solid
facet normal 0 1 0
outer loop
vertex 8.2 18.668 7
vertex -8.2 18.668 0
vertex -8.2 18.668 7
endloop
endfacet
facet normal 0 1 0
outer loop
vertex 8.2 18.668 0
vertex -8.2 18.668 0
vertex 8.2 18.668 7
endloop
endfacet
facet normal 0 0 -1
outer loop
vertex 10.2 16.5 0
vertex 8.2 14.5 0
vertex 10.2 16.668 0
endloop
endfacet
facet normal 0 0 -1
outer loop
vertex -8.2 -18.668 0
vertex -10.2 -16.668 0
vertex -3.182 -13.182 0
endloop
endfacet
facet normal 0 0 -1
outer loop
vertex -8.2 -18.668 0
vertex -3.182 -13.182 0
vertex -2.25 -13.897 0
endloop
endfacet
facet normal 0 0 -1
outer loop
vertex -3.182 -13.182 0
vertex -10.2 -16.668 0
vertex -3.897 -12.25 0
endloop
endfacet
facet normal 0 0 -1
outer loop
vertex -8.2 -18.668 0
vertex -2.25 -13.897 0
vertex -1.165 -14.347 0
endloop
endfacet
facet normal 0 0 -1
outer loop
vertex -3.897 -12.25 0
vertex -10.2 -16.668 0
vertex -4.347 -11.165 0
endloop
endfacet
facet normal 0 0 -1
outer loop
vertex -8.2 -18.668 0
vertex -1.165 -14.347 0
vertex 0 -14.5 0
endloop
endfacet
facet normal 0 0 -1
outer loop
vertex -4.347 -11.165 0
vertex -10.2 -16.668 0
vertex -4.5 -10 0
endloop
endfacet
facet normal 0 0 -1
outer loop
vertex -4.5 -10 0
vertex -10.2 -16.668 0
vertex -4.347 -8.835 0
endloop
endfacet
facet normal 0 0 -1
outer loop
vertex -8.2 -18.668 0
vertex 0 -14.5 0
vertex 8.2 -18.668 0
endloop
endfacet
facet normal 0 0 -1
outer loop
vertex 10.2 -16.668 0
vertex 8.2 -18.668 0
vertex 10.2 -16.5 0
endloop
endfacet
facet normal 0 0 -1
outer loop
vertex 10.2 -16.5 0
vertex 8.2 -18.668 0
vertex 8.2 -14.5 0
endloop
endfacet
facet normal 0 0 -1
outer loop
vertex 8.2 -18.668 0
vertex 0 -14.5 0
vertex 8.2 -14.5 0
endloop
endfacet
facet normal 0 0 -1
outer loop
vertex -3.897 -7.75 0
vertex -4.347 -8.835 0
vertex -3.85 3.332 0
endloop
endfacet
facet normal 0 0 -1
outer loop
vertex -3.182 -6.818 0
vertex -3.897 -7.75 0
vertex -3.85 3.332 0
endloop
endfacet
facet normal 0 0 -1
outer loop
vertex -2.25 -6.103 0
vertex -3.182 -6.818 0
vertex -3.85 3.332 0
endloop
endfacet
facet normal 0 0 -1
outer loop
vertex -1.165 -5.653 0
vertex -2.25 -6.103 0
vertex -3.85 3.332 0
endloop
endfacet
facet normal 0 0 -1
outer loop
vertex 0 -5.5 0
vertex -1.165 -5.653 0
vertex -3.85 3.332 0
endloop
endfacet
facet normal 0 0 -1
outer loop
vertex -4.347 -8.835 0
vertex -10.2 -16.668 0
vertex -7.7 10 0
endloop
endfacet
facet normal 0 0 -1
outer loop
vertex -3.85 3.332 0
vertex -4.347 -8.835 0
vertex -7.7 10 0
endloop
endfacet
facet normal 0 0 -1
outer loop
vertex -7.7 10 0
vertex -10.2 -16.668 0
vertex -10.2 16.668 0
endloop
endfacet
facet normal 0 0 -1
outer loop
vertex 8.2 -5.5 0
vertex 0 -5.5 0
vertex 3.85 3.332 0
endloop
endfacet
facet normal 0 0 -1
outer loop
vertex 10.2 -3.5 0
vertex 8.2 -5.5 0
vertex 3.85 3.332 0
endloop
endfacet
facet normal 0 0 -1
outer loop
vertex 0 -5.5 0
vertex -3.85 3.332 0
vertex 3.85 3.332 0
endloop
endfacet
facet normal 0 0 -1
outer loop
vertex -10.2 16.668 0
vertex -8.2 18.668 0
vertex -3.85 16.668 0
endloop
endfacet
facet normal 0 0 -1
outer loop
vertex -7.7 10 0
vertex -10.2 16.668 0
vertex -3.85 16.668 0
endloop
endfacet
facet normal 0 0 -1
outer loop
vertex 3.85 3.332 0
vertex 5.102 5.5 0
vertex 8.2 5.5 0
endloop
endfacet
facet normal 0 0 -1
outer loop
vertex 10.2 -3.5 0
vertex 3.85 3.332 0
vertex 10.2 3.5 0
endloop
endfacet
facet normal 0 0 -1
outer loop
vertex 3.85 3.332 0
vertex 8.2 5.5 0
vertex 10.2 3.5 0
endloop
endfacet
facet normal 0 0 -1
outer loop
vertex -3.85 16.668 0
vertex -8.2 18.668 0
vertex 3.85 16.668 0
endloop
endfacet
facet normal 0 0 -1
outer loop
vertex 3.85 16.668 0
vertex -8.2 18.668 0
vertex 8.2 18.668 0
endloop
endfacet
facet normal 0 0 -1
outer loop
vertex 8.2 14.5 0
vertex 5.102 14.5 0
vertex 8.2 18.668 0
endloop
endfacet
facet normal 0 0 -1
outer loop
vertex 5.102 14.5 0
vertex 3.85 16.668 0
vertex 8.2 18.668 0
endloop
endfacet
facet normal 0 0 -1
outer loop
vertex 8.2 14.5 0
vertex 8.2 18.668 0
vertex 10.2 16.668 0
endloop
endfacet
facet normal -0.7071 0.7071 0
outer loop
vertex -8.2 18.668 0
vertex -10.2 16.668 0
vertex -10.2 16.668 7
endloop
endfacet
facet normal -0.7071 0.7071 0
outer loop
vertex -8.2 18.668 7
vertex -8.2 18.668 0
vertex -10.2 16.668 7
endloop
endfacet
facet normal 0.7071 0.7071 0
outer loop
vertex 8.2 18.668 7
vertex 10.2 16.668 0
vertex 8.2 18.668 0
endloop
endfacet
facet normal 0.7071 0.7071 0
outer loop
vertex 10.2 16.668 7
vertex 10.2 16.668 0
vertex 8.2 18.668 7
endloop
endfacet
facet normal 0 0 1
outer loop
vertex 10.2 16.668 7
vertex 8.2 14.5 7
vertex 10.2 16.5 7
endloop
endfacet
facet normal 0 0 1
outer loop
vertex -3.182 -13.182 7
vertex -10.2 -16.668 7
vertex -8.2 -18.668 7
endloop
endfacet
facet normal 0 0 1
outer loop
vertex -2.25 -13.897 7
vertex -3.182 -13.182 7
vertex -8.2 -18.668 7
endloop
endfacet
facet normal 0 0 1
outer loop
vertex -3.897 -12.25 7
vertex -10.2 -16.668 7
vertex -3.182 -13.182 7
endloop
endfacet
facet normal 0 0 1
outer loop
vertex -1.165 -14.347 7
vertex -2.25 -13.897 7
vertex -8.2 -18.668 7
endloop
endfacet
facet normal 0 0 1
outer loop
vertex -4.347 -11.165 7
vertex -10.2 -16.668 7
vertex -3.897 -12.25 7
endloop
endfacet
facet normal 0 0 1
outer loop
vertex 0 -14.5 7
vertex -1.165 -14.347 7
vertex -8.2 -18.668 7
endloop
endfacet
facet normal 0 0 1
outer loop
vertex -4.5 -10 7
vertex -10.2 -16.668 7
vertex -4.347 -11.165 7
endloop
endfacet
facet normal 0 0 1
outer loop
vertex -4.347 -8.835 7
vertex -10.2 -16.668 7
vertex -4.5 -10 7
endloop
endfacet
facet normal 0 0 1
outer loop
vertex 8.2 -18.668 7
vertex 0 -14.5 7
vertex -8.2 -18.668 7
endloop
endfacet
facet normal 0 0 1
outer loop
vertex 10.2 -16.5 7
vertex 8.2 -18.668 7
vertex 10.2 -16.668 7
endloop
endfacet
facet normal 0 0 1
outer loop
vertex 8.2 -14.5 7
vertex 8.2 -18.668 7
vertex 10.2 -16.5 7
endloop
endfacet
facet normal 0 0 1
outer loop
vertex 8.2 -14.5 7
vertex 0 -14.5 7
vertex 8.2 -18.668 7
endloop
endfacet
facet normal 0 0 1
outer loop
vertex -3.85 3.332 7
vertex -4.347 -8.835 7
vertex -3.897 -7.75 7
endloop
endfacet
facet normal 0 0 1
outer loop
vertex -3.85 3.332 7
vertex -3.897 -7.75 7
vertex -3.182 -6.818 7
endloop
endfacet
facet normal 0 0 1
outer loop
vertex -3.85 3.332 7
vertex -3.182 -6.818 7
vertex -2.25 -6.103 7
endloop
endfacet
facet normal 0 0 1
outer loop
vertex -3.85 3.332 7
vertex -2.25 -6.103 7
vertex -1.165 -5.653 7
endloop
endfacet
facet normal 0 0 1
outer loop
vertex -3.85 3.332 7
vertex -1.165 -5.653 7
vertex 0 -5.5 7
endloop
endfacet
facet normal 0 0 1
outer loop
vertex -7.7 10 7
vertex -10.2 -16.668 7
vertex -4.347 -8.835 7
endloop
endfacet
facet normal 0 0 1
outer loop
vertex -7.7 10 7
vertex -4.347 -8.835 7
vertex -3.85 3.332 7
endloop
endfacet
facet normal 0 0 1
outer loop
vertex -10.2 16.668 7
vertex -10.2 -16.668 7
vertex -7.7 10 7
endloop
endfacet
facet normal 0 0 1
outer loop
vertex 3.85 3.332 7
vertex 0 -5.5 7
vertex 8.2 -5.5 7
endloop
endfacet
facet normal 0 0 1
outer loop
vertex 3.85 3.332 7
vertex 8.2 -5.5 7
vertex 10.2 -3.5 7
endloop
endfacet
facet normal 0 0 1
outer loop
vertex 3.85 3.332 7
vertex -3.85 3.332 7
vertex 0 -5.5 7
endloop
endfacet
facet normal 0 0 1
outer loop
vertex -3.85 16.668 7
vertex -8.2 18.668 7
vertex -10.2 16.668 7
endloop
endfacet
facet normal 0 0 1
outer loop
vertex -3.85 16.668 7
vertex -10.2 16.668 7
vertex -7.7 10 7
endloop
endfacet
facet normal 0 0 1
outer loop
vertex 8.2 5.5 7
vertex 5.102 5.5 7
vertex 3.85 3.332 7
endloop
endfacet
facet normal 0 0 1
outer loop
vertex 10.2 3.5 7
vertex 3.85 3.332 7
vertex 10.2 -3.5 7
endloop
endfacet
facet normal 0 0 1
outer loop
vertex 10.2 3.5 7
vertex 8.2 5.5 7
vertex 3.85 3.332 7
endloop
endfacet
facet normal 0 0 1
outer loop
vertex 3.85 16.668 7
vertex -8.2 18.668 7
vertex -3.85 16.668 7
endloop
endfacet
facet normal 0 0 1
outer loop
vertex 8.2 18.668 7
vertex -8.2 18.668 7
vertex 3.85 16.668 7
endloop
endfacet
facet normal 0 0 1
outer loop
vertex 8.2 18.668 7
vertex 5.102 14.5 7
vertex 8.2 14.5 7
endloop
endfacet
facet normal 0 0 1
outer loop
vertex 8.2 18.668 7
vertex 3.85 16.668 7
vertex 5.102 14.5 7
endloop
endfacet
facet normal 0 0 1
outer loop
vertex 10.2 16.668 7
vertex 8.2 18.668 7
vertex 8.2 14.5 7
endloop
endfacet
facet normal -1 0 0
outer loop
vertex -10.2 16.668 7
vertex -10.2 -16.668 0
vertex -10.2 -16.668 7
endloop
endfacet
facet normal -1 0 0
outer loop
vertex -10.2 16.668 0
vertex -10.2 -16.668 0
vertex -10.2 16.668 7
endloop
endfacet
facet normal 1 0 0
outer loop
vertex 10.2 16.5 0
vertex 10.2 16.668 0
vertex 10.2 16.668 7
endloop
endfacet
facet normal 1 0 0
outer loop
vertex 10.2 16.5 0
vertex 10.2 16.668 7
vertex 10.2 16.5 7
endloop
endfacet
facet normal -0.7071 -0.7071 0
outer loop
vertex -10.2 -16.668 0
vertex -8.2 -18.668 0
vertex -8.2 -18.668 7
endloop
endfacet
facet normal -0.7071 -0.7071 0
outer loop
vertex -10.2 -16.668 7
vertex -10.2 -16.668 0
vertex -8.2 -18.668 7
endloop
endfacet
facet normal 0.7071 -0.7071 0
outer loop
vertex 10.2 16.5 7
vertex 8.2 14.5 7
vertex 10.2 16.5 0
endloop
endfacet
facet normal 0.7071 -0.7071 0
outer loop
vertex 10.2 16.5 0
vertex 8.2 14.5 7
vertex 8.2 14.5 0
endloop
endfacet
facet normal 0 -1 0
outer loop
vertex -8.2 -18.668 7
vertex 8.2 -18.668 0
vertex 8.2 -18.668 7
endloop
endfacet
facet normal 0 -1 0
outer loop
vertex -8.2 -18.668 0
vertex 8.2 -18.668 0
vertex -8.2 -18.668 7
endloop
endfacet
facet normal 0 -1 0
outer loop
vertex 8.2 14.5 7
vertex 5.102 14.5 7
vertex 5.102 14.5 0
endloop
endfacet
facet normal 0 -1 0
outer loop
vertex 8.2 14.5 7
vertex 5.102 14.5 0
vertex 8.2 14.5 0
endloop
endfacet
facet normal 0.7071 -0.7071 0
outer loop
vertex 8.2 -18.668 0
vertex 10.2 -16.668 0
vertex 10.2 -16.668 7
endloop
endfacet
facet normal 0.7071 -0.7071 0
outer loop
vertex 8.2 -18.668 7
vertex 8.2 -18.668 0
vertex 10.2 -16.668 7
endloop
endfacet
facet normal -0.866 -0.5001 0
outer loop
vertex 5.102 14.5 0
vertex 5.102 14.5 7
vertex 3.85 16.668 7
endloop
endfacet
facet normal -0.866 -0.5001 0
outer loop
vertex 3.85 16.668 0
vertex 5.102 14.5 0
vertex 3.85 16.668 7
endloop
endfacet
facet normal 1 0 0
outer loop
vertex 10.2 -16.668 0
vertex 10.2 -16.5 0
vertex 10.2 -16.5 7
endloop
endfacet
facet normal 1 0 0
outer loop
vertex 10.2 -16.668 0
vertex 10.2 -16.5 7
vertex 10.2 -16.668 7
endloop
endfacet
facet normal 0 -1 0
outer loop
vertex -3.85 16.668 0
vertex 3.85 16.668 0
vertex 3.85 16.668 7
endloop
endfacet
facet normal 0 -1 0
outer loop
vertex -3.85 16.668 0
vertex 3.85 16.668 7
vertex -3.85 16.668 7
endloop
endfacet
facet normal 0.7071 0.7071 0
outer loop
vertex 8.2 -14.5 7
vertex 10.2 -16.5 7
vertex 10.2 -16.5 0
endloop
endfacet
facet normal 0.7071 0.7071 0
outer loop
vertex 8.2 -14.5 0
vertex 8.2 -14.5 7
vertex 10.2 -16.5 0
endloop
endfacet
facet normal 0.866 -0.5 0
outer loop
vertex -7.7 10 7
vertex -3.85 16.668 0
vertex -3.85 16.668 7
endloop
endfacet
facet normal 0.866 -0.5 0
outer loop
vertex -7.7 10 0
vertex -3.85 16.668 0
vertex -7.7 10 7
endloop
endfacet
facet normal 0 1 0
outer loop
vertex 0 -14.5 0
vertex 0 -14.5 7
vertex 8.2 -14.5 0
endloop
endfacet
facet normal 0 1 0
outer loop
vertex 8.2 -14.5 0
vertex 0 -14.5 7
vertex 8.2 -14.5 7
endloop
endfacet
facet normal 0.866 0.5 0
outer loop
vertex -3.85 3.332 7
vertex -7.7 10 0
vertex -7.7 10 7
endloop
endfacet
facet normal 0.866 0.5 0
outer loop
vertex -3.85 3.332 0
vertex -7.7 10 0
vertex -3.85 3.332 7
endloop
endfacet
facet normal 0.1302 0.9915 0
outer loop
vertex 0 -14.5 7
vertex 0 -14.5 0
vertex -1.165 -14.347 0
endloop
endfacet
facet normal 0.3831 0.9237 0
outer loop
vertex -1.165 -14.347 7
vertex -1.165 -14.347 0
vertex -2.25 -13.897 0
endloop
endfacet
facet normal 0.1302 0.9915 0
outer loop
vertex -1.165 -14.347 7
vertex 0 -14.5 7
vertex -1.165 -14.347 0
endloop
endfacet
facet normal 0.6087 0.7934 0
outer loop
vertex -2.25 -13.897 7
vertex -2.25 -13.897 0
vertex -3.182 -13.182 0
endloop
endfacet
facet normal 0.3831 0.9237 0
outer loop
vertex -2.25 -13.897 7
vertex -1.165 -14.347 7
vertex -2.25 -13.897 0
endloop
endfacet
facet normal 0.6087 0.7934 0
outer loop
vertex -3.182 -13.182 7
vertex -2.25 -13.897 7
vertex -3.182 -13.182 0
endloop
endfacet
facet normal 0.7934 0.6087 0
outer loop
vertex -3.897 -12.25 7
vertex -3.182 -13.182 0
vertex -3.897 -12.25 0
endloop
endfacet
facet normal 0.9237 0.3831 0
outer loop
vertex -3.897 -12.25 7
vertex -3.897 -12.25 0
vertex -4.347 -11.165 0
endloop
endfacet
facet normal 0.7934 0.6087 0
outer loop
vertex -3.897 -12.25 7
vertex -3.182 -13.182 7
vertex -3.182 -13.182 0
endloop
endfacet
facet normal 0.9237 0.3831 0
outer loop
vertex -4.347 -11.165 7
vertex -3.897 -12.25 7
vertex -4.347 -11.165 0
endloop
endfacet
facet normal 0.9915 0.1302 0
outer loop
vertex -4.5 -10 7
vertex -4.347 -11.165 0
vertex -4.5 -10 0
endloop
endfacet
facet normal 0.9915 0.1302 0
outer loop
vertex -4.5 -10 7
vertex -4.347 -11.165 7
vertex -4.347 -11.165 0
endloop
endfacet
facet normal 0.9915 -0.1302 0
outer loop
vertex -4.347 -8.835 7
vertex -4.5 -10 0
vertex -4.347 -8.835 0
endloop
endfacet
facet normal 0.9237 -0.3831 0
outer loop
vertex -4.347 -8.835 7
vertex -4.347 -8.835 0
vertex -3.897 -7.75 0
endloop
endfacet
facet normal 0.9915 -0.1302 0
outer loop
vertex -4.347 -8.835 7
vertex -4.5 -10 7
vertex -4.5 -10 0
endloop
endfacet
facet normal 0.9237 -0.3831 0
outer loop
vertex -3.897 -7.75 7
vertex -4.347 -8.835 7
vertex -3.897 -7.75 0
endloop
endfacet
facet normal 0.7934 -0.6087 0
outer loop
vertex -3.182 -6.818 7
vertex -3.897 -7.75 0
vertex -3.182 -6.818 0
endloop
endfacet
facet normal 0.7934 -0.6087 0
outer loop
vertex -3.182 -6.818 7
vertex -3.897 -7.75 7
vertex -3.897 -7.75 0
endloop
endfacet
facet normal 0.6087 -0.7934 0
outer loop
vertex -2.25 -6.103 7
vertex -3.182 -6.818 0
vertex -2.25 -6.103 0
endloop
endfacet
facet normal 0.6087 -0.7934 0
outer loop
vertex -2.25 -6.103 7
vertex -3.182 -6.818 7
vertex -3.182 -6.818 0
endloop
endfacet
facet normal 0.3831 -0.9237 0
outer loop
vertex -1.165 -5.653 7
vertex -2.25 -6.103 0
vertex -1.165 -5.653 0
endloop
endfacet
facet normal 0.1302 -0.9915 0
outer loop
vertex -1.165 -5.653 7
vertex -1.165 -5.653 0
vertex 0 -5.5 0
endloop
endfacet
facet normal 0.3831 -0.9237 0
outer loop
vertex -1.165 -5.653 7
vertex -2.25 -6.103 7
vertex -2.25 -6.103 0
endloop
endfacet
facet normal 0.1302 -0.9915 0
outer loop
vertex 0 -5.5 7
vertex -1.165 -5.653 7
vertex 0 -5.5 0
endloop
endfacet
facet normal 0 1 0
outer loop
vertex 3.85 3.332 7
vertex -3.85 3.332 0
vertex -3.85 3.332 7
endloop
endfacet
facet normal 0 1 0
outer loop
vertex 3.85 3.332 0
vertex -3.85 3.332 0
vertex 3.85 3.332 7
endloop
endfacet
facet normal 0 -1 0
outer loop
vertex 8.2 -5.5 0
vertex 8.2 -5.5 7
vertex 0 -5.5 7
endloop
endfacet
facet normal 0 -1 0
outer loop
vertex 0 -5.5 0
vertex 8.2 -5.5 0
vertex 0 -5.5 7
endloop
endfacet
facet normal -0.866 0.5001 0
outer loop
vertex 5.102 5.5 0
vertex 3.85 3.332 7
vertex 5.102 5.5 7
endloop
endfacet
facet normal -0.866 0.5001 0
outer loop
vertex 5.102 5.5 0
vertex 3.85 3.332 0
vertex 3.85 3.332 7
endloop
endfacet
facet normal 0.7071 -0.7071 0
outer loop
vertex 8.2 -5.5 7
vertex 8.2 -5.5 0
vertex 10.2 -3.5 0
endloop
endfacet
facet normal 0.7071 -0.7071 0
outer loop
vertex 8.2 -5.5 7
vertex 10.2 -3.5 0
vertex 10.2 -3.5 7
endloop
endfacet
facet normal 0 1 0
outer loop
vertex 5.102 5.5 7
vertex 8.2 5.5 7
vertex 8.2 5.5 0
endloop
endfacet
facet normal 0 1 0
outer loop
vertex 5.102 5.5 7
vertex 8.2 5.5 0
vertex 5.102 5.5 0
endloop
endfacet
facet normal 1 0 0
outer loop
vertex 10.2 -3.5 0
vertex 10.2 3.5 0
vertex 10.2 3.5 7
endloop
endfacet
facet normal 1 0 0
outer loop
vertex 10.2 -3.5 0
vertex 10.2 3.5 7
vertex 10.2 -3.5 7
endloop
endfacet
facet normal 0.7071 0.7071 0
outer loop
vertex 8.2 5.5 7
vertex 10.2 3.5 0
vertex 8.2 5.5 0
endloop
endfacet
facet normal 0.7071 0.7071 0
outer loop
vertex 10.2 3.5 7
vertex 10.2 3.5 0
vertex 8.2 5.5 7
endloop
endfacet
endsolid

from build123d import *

# Parameters (mm, degrees)
SKETCH_W     = 20.4
SKETCH_H     = 37.336792
PAD_DEPTH    = 7
POCKET_DEPTH = 7
CHAMFER_SIZE = 2


with BuildPart() as part:
    # Sketch → Pad (new body)
    with BuildSketch(Plane.XY):
        Rectangle(SKETCH_W, SKETCH_H)
        Polygon((3.85, 3.331604), (7.7, 10), (3.85, 16.668396), (-3.85, 16.668396), (-7.7, 10), (-3.85, 3.331604), align=None, mode=Mode.SUBTRACT)
    extrude(amount=PAD_DEPTH)

    # Sketch001 → Pocket (cut)
    with BuildSketch(Plane.XY.offset(7)):
        with BuildLine():
            Line((0, 14.5), (14, 14.5))
            Line((14, 14.5), (14, 5.5))
            Line((14, 5.5), (0, 5.5))
            ThreePointArc((0, 14.5), (-4.5, 10), (0, 5.5))
        make_face()
    pocket = extrude(amount=-POCKET_DEPTH, mode=Mode.SUBTRACT)

    # Mirrored: Pocket across Sketch001 H_Axis
    add(pocket.mirror(Plane(origin=(0, 0, 7), x_dir=(0, 0, 1), z_dir=(0, 1, 0))), mode=Mode.SUBTRACT)

    # Chamfer
    chamfer_edges = [part.edges().sort_by_distance(p)[0] for p in [
        (10.2, 18.668396, 3.5),
        (10.2, 14.5, 3.5),
        (10.2, 5.5, 3.5),
        (10.2, -5.5, 3.5),
        (10.2, -14.5, 3.5),
        (10.2, -18.668396, 3.5),
        (-10.2, -18.668396, 3.5),
        (-10.2, 18.668396, 3.5),
    ]]
    chamfer(chamfer_edges, length=CHAMFER_SIZE)


solid = part.part
